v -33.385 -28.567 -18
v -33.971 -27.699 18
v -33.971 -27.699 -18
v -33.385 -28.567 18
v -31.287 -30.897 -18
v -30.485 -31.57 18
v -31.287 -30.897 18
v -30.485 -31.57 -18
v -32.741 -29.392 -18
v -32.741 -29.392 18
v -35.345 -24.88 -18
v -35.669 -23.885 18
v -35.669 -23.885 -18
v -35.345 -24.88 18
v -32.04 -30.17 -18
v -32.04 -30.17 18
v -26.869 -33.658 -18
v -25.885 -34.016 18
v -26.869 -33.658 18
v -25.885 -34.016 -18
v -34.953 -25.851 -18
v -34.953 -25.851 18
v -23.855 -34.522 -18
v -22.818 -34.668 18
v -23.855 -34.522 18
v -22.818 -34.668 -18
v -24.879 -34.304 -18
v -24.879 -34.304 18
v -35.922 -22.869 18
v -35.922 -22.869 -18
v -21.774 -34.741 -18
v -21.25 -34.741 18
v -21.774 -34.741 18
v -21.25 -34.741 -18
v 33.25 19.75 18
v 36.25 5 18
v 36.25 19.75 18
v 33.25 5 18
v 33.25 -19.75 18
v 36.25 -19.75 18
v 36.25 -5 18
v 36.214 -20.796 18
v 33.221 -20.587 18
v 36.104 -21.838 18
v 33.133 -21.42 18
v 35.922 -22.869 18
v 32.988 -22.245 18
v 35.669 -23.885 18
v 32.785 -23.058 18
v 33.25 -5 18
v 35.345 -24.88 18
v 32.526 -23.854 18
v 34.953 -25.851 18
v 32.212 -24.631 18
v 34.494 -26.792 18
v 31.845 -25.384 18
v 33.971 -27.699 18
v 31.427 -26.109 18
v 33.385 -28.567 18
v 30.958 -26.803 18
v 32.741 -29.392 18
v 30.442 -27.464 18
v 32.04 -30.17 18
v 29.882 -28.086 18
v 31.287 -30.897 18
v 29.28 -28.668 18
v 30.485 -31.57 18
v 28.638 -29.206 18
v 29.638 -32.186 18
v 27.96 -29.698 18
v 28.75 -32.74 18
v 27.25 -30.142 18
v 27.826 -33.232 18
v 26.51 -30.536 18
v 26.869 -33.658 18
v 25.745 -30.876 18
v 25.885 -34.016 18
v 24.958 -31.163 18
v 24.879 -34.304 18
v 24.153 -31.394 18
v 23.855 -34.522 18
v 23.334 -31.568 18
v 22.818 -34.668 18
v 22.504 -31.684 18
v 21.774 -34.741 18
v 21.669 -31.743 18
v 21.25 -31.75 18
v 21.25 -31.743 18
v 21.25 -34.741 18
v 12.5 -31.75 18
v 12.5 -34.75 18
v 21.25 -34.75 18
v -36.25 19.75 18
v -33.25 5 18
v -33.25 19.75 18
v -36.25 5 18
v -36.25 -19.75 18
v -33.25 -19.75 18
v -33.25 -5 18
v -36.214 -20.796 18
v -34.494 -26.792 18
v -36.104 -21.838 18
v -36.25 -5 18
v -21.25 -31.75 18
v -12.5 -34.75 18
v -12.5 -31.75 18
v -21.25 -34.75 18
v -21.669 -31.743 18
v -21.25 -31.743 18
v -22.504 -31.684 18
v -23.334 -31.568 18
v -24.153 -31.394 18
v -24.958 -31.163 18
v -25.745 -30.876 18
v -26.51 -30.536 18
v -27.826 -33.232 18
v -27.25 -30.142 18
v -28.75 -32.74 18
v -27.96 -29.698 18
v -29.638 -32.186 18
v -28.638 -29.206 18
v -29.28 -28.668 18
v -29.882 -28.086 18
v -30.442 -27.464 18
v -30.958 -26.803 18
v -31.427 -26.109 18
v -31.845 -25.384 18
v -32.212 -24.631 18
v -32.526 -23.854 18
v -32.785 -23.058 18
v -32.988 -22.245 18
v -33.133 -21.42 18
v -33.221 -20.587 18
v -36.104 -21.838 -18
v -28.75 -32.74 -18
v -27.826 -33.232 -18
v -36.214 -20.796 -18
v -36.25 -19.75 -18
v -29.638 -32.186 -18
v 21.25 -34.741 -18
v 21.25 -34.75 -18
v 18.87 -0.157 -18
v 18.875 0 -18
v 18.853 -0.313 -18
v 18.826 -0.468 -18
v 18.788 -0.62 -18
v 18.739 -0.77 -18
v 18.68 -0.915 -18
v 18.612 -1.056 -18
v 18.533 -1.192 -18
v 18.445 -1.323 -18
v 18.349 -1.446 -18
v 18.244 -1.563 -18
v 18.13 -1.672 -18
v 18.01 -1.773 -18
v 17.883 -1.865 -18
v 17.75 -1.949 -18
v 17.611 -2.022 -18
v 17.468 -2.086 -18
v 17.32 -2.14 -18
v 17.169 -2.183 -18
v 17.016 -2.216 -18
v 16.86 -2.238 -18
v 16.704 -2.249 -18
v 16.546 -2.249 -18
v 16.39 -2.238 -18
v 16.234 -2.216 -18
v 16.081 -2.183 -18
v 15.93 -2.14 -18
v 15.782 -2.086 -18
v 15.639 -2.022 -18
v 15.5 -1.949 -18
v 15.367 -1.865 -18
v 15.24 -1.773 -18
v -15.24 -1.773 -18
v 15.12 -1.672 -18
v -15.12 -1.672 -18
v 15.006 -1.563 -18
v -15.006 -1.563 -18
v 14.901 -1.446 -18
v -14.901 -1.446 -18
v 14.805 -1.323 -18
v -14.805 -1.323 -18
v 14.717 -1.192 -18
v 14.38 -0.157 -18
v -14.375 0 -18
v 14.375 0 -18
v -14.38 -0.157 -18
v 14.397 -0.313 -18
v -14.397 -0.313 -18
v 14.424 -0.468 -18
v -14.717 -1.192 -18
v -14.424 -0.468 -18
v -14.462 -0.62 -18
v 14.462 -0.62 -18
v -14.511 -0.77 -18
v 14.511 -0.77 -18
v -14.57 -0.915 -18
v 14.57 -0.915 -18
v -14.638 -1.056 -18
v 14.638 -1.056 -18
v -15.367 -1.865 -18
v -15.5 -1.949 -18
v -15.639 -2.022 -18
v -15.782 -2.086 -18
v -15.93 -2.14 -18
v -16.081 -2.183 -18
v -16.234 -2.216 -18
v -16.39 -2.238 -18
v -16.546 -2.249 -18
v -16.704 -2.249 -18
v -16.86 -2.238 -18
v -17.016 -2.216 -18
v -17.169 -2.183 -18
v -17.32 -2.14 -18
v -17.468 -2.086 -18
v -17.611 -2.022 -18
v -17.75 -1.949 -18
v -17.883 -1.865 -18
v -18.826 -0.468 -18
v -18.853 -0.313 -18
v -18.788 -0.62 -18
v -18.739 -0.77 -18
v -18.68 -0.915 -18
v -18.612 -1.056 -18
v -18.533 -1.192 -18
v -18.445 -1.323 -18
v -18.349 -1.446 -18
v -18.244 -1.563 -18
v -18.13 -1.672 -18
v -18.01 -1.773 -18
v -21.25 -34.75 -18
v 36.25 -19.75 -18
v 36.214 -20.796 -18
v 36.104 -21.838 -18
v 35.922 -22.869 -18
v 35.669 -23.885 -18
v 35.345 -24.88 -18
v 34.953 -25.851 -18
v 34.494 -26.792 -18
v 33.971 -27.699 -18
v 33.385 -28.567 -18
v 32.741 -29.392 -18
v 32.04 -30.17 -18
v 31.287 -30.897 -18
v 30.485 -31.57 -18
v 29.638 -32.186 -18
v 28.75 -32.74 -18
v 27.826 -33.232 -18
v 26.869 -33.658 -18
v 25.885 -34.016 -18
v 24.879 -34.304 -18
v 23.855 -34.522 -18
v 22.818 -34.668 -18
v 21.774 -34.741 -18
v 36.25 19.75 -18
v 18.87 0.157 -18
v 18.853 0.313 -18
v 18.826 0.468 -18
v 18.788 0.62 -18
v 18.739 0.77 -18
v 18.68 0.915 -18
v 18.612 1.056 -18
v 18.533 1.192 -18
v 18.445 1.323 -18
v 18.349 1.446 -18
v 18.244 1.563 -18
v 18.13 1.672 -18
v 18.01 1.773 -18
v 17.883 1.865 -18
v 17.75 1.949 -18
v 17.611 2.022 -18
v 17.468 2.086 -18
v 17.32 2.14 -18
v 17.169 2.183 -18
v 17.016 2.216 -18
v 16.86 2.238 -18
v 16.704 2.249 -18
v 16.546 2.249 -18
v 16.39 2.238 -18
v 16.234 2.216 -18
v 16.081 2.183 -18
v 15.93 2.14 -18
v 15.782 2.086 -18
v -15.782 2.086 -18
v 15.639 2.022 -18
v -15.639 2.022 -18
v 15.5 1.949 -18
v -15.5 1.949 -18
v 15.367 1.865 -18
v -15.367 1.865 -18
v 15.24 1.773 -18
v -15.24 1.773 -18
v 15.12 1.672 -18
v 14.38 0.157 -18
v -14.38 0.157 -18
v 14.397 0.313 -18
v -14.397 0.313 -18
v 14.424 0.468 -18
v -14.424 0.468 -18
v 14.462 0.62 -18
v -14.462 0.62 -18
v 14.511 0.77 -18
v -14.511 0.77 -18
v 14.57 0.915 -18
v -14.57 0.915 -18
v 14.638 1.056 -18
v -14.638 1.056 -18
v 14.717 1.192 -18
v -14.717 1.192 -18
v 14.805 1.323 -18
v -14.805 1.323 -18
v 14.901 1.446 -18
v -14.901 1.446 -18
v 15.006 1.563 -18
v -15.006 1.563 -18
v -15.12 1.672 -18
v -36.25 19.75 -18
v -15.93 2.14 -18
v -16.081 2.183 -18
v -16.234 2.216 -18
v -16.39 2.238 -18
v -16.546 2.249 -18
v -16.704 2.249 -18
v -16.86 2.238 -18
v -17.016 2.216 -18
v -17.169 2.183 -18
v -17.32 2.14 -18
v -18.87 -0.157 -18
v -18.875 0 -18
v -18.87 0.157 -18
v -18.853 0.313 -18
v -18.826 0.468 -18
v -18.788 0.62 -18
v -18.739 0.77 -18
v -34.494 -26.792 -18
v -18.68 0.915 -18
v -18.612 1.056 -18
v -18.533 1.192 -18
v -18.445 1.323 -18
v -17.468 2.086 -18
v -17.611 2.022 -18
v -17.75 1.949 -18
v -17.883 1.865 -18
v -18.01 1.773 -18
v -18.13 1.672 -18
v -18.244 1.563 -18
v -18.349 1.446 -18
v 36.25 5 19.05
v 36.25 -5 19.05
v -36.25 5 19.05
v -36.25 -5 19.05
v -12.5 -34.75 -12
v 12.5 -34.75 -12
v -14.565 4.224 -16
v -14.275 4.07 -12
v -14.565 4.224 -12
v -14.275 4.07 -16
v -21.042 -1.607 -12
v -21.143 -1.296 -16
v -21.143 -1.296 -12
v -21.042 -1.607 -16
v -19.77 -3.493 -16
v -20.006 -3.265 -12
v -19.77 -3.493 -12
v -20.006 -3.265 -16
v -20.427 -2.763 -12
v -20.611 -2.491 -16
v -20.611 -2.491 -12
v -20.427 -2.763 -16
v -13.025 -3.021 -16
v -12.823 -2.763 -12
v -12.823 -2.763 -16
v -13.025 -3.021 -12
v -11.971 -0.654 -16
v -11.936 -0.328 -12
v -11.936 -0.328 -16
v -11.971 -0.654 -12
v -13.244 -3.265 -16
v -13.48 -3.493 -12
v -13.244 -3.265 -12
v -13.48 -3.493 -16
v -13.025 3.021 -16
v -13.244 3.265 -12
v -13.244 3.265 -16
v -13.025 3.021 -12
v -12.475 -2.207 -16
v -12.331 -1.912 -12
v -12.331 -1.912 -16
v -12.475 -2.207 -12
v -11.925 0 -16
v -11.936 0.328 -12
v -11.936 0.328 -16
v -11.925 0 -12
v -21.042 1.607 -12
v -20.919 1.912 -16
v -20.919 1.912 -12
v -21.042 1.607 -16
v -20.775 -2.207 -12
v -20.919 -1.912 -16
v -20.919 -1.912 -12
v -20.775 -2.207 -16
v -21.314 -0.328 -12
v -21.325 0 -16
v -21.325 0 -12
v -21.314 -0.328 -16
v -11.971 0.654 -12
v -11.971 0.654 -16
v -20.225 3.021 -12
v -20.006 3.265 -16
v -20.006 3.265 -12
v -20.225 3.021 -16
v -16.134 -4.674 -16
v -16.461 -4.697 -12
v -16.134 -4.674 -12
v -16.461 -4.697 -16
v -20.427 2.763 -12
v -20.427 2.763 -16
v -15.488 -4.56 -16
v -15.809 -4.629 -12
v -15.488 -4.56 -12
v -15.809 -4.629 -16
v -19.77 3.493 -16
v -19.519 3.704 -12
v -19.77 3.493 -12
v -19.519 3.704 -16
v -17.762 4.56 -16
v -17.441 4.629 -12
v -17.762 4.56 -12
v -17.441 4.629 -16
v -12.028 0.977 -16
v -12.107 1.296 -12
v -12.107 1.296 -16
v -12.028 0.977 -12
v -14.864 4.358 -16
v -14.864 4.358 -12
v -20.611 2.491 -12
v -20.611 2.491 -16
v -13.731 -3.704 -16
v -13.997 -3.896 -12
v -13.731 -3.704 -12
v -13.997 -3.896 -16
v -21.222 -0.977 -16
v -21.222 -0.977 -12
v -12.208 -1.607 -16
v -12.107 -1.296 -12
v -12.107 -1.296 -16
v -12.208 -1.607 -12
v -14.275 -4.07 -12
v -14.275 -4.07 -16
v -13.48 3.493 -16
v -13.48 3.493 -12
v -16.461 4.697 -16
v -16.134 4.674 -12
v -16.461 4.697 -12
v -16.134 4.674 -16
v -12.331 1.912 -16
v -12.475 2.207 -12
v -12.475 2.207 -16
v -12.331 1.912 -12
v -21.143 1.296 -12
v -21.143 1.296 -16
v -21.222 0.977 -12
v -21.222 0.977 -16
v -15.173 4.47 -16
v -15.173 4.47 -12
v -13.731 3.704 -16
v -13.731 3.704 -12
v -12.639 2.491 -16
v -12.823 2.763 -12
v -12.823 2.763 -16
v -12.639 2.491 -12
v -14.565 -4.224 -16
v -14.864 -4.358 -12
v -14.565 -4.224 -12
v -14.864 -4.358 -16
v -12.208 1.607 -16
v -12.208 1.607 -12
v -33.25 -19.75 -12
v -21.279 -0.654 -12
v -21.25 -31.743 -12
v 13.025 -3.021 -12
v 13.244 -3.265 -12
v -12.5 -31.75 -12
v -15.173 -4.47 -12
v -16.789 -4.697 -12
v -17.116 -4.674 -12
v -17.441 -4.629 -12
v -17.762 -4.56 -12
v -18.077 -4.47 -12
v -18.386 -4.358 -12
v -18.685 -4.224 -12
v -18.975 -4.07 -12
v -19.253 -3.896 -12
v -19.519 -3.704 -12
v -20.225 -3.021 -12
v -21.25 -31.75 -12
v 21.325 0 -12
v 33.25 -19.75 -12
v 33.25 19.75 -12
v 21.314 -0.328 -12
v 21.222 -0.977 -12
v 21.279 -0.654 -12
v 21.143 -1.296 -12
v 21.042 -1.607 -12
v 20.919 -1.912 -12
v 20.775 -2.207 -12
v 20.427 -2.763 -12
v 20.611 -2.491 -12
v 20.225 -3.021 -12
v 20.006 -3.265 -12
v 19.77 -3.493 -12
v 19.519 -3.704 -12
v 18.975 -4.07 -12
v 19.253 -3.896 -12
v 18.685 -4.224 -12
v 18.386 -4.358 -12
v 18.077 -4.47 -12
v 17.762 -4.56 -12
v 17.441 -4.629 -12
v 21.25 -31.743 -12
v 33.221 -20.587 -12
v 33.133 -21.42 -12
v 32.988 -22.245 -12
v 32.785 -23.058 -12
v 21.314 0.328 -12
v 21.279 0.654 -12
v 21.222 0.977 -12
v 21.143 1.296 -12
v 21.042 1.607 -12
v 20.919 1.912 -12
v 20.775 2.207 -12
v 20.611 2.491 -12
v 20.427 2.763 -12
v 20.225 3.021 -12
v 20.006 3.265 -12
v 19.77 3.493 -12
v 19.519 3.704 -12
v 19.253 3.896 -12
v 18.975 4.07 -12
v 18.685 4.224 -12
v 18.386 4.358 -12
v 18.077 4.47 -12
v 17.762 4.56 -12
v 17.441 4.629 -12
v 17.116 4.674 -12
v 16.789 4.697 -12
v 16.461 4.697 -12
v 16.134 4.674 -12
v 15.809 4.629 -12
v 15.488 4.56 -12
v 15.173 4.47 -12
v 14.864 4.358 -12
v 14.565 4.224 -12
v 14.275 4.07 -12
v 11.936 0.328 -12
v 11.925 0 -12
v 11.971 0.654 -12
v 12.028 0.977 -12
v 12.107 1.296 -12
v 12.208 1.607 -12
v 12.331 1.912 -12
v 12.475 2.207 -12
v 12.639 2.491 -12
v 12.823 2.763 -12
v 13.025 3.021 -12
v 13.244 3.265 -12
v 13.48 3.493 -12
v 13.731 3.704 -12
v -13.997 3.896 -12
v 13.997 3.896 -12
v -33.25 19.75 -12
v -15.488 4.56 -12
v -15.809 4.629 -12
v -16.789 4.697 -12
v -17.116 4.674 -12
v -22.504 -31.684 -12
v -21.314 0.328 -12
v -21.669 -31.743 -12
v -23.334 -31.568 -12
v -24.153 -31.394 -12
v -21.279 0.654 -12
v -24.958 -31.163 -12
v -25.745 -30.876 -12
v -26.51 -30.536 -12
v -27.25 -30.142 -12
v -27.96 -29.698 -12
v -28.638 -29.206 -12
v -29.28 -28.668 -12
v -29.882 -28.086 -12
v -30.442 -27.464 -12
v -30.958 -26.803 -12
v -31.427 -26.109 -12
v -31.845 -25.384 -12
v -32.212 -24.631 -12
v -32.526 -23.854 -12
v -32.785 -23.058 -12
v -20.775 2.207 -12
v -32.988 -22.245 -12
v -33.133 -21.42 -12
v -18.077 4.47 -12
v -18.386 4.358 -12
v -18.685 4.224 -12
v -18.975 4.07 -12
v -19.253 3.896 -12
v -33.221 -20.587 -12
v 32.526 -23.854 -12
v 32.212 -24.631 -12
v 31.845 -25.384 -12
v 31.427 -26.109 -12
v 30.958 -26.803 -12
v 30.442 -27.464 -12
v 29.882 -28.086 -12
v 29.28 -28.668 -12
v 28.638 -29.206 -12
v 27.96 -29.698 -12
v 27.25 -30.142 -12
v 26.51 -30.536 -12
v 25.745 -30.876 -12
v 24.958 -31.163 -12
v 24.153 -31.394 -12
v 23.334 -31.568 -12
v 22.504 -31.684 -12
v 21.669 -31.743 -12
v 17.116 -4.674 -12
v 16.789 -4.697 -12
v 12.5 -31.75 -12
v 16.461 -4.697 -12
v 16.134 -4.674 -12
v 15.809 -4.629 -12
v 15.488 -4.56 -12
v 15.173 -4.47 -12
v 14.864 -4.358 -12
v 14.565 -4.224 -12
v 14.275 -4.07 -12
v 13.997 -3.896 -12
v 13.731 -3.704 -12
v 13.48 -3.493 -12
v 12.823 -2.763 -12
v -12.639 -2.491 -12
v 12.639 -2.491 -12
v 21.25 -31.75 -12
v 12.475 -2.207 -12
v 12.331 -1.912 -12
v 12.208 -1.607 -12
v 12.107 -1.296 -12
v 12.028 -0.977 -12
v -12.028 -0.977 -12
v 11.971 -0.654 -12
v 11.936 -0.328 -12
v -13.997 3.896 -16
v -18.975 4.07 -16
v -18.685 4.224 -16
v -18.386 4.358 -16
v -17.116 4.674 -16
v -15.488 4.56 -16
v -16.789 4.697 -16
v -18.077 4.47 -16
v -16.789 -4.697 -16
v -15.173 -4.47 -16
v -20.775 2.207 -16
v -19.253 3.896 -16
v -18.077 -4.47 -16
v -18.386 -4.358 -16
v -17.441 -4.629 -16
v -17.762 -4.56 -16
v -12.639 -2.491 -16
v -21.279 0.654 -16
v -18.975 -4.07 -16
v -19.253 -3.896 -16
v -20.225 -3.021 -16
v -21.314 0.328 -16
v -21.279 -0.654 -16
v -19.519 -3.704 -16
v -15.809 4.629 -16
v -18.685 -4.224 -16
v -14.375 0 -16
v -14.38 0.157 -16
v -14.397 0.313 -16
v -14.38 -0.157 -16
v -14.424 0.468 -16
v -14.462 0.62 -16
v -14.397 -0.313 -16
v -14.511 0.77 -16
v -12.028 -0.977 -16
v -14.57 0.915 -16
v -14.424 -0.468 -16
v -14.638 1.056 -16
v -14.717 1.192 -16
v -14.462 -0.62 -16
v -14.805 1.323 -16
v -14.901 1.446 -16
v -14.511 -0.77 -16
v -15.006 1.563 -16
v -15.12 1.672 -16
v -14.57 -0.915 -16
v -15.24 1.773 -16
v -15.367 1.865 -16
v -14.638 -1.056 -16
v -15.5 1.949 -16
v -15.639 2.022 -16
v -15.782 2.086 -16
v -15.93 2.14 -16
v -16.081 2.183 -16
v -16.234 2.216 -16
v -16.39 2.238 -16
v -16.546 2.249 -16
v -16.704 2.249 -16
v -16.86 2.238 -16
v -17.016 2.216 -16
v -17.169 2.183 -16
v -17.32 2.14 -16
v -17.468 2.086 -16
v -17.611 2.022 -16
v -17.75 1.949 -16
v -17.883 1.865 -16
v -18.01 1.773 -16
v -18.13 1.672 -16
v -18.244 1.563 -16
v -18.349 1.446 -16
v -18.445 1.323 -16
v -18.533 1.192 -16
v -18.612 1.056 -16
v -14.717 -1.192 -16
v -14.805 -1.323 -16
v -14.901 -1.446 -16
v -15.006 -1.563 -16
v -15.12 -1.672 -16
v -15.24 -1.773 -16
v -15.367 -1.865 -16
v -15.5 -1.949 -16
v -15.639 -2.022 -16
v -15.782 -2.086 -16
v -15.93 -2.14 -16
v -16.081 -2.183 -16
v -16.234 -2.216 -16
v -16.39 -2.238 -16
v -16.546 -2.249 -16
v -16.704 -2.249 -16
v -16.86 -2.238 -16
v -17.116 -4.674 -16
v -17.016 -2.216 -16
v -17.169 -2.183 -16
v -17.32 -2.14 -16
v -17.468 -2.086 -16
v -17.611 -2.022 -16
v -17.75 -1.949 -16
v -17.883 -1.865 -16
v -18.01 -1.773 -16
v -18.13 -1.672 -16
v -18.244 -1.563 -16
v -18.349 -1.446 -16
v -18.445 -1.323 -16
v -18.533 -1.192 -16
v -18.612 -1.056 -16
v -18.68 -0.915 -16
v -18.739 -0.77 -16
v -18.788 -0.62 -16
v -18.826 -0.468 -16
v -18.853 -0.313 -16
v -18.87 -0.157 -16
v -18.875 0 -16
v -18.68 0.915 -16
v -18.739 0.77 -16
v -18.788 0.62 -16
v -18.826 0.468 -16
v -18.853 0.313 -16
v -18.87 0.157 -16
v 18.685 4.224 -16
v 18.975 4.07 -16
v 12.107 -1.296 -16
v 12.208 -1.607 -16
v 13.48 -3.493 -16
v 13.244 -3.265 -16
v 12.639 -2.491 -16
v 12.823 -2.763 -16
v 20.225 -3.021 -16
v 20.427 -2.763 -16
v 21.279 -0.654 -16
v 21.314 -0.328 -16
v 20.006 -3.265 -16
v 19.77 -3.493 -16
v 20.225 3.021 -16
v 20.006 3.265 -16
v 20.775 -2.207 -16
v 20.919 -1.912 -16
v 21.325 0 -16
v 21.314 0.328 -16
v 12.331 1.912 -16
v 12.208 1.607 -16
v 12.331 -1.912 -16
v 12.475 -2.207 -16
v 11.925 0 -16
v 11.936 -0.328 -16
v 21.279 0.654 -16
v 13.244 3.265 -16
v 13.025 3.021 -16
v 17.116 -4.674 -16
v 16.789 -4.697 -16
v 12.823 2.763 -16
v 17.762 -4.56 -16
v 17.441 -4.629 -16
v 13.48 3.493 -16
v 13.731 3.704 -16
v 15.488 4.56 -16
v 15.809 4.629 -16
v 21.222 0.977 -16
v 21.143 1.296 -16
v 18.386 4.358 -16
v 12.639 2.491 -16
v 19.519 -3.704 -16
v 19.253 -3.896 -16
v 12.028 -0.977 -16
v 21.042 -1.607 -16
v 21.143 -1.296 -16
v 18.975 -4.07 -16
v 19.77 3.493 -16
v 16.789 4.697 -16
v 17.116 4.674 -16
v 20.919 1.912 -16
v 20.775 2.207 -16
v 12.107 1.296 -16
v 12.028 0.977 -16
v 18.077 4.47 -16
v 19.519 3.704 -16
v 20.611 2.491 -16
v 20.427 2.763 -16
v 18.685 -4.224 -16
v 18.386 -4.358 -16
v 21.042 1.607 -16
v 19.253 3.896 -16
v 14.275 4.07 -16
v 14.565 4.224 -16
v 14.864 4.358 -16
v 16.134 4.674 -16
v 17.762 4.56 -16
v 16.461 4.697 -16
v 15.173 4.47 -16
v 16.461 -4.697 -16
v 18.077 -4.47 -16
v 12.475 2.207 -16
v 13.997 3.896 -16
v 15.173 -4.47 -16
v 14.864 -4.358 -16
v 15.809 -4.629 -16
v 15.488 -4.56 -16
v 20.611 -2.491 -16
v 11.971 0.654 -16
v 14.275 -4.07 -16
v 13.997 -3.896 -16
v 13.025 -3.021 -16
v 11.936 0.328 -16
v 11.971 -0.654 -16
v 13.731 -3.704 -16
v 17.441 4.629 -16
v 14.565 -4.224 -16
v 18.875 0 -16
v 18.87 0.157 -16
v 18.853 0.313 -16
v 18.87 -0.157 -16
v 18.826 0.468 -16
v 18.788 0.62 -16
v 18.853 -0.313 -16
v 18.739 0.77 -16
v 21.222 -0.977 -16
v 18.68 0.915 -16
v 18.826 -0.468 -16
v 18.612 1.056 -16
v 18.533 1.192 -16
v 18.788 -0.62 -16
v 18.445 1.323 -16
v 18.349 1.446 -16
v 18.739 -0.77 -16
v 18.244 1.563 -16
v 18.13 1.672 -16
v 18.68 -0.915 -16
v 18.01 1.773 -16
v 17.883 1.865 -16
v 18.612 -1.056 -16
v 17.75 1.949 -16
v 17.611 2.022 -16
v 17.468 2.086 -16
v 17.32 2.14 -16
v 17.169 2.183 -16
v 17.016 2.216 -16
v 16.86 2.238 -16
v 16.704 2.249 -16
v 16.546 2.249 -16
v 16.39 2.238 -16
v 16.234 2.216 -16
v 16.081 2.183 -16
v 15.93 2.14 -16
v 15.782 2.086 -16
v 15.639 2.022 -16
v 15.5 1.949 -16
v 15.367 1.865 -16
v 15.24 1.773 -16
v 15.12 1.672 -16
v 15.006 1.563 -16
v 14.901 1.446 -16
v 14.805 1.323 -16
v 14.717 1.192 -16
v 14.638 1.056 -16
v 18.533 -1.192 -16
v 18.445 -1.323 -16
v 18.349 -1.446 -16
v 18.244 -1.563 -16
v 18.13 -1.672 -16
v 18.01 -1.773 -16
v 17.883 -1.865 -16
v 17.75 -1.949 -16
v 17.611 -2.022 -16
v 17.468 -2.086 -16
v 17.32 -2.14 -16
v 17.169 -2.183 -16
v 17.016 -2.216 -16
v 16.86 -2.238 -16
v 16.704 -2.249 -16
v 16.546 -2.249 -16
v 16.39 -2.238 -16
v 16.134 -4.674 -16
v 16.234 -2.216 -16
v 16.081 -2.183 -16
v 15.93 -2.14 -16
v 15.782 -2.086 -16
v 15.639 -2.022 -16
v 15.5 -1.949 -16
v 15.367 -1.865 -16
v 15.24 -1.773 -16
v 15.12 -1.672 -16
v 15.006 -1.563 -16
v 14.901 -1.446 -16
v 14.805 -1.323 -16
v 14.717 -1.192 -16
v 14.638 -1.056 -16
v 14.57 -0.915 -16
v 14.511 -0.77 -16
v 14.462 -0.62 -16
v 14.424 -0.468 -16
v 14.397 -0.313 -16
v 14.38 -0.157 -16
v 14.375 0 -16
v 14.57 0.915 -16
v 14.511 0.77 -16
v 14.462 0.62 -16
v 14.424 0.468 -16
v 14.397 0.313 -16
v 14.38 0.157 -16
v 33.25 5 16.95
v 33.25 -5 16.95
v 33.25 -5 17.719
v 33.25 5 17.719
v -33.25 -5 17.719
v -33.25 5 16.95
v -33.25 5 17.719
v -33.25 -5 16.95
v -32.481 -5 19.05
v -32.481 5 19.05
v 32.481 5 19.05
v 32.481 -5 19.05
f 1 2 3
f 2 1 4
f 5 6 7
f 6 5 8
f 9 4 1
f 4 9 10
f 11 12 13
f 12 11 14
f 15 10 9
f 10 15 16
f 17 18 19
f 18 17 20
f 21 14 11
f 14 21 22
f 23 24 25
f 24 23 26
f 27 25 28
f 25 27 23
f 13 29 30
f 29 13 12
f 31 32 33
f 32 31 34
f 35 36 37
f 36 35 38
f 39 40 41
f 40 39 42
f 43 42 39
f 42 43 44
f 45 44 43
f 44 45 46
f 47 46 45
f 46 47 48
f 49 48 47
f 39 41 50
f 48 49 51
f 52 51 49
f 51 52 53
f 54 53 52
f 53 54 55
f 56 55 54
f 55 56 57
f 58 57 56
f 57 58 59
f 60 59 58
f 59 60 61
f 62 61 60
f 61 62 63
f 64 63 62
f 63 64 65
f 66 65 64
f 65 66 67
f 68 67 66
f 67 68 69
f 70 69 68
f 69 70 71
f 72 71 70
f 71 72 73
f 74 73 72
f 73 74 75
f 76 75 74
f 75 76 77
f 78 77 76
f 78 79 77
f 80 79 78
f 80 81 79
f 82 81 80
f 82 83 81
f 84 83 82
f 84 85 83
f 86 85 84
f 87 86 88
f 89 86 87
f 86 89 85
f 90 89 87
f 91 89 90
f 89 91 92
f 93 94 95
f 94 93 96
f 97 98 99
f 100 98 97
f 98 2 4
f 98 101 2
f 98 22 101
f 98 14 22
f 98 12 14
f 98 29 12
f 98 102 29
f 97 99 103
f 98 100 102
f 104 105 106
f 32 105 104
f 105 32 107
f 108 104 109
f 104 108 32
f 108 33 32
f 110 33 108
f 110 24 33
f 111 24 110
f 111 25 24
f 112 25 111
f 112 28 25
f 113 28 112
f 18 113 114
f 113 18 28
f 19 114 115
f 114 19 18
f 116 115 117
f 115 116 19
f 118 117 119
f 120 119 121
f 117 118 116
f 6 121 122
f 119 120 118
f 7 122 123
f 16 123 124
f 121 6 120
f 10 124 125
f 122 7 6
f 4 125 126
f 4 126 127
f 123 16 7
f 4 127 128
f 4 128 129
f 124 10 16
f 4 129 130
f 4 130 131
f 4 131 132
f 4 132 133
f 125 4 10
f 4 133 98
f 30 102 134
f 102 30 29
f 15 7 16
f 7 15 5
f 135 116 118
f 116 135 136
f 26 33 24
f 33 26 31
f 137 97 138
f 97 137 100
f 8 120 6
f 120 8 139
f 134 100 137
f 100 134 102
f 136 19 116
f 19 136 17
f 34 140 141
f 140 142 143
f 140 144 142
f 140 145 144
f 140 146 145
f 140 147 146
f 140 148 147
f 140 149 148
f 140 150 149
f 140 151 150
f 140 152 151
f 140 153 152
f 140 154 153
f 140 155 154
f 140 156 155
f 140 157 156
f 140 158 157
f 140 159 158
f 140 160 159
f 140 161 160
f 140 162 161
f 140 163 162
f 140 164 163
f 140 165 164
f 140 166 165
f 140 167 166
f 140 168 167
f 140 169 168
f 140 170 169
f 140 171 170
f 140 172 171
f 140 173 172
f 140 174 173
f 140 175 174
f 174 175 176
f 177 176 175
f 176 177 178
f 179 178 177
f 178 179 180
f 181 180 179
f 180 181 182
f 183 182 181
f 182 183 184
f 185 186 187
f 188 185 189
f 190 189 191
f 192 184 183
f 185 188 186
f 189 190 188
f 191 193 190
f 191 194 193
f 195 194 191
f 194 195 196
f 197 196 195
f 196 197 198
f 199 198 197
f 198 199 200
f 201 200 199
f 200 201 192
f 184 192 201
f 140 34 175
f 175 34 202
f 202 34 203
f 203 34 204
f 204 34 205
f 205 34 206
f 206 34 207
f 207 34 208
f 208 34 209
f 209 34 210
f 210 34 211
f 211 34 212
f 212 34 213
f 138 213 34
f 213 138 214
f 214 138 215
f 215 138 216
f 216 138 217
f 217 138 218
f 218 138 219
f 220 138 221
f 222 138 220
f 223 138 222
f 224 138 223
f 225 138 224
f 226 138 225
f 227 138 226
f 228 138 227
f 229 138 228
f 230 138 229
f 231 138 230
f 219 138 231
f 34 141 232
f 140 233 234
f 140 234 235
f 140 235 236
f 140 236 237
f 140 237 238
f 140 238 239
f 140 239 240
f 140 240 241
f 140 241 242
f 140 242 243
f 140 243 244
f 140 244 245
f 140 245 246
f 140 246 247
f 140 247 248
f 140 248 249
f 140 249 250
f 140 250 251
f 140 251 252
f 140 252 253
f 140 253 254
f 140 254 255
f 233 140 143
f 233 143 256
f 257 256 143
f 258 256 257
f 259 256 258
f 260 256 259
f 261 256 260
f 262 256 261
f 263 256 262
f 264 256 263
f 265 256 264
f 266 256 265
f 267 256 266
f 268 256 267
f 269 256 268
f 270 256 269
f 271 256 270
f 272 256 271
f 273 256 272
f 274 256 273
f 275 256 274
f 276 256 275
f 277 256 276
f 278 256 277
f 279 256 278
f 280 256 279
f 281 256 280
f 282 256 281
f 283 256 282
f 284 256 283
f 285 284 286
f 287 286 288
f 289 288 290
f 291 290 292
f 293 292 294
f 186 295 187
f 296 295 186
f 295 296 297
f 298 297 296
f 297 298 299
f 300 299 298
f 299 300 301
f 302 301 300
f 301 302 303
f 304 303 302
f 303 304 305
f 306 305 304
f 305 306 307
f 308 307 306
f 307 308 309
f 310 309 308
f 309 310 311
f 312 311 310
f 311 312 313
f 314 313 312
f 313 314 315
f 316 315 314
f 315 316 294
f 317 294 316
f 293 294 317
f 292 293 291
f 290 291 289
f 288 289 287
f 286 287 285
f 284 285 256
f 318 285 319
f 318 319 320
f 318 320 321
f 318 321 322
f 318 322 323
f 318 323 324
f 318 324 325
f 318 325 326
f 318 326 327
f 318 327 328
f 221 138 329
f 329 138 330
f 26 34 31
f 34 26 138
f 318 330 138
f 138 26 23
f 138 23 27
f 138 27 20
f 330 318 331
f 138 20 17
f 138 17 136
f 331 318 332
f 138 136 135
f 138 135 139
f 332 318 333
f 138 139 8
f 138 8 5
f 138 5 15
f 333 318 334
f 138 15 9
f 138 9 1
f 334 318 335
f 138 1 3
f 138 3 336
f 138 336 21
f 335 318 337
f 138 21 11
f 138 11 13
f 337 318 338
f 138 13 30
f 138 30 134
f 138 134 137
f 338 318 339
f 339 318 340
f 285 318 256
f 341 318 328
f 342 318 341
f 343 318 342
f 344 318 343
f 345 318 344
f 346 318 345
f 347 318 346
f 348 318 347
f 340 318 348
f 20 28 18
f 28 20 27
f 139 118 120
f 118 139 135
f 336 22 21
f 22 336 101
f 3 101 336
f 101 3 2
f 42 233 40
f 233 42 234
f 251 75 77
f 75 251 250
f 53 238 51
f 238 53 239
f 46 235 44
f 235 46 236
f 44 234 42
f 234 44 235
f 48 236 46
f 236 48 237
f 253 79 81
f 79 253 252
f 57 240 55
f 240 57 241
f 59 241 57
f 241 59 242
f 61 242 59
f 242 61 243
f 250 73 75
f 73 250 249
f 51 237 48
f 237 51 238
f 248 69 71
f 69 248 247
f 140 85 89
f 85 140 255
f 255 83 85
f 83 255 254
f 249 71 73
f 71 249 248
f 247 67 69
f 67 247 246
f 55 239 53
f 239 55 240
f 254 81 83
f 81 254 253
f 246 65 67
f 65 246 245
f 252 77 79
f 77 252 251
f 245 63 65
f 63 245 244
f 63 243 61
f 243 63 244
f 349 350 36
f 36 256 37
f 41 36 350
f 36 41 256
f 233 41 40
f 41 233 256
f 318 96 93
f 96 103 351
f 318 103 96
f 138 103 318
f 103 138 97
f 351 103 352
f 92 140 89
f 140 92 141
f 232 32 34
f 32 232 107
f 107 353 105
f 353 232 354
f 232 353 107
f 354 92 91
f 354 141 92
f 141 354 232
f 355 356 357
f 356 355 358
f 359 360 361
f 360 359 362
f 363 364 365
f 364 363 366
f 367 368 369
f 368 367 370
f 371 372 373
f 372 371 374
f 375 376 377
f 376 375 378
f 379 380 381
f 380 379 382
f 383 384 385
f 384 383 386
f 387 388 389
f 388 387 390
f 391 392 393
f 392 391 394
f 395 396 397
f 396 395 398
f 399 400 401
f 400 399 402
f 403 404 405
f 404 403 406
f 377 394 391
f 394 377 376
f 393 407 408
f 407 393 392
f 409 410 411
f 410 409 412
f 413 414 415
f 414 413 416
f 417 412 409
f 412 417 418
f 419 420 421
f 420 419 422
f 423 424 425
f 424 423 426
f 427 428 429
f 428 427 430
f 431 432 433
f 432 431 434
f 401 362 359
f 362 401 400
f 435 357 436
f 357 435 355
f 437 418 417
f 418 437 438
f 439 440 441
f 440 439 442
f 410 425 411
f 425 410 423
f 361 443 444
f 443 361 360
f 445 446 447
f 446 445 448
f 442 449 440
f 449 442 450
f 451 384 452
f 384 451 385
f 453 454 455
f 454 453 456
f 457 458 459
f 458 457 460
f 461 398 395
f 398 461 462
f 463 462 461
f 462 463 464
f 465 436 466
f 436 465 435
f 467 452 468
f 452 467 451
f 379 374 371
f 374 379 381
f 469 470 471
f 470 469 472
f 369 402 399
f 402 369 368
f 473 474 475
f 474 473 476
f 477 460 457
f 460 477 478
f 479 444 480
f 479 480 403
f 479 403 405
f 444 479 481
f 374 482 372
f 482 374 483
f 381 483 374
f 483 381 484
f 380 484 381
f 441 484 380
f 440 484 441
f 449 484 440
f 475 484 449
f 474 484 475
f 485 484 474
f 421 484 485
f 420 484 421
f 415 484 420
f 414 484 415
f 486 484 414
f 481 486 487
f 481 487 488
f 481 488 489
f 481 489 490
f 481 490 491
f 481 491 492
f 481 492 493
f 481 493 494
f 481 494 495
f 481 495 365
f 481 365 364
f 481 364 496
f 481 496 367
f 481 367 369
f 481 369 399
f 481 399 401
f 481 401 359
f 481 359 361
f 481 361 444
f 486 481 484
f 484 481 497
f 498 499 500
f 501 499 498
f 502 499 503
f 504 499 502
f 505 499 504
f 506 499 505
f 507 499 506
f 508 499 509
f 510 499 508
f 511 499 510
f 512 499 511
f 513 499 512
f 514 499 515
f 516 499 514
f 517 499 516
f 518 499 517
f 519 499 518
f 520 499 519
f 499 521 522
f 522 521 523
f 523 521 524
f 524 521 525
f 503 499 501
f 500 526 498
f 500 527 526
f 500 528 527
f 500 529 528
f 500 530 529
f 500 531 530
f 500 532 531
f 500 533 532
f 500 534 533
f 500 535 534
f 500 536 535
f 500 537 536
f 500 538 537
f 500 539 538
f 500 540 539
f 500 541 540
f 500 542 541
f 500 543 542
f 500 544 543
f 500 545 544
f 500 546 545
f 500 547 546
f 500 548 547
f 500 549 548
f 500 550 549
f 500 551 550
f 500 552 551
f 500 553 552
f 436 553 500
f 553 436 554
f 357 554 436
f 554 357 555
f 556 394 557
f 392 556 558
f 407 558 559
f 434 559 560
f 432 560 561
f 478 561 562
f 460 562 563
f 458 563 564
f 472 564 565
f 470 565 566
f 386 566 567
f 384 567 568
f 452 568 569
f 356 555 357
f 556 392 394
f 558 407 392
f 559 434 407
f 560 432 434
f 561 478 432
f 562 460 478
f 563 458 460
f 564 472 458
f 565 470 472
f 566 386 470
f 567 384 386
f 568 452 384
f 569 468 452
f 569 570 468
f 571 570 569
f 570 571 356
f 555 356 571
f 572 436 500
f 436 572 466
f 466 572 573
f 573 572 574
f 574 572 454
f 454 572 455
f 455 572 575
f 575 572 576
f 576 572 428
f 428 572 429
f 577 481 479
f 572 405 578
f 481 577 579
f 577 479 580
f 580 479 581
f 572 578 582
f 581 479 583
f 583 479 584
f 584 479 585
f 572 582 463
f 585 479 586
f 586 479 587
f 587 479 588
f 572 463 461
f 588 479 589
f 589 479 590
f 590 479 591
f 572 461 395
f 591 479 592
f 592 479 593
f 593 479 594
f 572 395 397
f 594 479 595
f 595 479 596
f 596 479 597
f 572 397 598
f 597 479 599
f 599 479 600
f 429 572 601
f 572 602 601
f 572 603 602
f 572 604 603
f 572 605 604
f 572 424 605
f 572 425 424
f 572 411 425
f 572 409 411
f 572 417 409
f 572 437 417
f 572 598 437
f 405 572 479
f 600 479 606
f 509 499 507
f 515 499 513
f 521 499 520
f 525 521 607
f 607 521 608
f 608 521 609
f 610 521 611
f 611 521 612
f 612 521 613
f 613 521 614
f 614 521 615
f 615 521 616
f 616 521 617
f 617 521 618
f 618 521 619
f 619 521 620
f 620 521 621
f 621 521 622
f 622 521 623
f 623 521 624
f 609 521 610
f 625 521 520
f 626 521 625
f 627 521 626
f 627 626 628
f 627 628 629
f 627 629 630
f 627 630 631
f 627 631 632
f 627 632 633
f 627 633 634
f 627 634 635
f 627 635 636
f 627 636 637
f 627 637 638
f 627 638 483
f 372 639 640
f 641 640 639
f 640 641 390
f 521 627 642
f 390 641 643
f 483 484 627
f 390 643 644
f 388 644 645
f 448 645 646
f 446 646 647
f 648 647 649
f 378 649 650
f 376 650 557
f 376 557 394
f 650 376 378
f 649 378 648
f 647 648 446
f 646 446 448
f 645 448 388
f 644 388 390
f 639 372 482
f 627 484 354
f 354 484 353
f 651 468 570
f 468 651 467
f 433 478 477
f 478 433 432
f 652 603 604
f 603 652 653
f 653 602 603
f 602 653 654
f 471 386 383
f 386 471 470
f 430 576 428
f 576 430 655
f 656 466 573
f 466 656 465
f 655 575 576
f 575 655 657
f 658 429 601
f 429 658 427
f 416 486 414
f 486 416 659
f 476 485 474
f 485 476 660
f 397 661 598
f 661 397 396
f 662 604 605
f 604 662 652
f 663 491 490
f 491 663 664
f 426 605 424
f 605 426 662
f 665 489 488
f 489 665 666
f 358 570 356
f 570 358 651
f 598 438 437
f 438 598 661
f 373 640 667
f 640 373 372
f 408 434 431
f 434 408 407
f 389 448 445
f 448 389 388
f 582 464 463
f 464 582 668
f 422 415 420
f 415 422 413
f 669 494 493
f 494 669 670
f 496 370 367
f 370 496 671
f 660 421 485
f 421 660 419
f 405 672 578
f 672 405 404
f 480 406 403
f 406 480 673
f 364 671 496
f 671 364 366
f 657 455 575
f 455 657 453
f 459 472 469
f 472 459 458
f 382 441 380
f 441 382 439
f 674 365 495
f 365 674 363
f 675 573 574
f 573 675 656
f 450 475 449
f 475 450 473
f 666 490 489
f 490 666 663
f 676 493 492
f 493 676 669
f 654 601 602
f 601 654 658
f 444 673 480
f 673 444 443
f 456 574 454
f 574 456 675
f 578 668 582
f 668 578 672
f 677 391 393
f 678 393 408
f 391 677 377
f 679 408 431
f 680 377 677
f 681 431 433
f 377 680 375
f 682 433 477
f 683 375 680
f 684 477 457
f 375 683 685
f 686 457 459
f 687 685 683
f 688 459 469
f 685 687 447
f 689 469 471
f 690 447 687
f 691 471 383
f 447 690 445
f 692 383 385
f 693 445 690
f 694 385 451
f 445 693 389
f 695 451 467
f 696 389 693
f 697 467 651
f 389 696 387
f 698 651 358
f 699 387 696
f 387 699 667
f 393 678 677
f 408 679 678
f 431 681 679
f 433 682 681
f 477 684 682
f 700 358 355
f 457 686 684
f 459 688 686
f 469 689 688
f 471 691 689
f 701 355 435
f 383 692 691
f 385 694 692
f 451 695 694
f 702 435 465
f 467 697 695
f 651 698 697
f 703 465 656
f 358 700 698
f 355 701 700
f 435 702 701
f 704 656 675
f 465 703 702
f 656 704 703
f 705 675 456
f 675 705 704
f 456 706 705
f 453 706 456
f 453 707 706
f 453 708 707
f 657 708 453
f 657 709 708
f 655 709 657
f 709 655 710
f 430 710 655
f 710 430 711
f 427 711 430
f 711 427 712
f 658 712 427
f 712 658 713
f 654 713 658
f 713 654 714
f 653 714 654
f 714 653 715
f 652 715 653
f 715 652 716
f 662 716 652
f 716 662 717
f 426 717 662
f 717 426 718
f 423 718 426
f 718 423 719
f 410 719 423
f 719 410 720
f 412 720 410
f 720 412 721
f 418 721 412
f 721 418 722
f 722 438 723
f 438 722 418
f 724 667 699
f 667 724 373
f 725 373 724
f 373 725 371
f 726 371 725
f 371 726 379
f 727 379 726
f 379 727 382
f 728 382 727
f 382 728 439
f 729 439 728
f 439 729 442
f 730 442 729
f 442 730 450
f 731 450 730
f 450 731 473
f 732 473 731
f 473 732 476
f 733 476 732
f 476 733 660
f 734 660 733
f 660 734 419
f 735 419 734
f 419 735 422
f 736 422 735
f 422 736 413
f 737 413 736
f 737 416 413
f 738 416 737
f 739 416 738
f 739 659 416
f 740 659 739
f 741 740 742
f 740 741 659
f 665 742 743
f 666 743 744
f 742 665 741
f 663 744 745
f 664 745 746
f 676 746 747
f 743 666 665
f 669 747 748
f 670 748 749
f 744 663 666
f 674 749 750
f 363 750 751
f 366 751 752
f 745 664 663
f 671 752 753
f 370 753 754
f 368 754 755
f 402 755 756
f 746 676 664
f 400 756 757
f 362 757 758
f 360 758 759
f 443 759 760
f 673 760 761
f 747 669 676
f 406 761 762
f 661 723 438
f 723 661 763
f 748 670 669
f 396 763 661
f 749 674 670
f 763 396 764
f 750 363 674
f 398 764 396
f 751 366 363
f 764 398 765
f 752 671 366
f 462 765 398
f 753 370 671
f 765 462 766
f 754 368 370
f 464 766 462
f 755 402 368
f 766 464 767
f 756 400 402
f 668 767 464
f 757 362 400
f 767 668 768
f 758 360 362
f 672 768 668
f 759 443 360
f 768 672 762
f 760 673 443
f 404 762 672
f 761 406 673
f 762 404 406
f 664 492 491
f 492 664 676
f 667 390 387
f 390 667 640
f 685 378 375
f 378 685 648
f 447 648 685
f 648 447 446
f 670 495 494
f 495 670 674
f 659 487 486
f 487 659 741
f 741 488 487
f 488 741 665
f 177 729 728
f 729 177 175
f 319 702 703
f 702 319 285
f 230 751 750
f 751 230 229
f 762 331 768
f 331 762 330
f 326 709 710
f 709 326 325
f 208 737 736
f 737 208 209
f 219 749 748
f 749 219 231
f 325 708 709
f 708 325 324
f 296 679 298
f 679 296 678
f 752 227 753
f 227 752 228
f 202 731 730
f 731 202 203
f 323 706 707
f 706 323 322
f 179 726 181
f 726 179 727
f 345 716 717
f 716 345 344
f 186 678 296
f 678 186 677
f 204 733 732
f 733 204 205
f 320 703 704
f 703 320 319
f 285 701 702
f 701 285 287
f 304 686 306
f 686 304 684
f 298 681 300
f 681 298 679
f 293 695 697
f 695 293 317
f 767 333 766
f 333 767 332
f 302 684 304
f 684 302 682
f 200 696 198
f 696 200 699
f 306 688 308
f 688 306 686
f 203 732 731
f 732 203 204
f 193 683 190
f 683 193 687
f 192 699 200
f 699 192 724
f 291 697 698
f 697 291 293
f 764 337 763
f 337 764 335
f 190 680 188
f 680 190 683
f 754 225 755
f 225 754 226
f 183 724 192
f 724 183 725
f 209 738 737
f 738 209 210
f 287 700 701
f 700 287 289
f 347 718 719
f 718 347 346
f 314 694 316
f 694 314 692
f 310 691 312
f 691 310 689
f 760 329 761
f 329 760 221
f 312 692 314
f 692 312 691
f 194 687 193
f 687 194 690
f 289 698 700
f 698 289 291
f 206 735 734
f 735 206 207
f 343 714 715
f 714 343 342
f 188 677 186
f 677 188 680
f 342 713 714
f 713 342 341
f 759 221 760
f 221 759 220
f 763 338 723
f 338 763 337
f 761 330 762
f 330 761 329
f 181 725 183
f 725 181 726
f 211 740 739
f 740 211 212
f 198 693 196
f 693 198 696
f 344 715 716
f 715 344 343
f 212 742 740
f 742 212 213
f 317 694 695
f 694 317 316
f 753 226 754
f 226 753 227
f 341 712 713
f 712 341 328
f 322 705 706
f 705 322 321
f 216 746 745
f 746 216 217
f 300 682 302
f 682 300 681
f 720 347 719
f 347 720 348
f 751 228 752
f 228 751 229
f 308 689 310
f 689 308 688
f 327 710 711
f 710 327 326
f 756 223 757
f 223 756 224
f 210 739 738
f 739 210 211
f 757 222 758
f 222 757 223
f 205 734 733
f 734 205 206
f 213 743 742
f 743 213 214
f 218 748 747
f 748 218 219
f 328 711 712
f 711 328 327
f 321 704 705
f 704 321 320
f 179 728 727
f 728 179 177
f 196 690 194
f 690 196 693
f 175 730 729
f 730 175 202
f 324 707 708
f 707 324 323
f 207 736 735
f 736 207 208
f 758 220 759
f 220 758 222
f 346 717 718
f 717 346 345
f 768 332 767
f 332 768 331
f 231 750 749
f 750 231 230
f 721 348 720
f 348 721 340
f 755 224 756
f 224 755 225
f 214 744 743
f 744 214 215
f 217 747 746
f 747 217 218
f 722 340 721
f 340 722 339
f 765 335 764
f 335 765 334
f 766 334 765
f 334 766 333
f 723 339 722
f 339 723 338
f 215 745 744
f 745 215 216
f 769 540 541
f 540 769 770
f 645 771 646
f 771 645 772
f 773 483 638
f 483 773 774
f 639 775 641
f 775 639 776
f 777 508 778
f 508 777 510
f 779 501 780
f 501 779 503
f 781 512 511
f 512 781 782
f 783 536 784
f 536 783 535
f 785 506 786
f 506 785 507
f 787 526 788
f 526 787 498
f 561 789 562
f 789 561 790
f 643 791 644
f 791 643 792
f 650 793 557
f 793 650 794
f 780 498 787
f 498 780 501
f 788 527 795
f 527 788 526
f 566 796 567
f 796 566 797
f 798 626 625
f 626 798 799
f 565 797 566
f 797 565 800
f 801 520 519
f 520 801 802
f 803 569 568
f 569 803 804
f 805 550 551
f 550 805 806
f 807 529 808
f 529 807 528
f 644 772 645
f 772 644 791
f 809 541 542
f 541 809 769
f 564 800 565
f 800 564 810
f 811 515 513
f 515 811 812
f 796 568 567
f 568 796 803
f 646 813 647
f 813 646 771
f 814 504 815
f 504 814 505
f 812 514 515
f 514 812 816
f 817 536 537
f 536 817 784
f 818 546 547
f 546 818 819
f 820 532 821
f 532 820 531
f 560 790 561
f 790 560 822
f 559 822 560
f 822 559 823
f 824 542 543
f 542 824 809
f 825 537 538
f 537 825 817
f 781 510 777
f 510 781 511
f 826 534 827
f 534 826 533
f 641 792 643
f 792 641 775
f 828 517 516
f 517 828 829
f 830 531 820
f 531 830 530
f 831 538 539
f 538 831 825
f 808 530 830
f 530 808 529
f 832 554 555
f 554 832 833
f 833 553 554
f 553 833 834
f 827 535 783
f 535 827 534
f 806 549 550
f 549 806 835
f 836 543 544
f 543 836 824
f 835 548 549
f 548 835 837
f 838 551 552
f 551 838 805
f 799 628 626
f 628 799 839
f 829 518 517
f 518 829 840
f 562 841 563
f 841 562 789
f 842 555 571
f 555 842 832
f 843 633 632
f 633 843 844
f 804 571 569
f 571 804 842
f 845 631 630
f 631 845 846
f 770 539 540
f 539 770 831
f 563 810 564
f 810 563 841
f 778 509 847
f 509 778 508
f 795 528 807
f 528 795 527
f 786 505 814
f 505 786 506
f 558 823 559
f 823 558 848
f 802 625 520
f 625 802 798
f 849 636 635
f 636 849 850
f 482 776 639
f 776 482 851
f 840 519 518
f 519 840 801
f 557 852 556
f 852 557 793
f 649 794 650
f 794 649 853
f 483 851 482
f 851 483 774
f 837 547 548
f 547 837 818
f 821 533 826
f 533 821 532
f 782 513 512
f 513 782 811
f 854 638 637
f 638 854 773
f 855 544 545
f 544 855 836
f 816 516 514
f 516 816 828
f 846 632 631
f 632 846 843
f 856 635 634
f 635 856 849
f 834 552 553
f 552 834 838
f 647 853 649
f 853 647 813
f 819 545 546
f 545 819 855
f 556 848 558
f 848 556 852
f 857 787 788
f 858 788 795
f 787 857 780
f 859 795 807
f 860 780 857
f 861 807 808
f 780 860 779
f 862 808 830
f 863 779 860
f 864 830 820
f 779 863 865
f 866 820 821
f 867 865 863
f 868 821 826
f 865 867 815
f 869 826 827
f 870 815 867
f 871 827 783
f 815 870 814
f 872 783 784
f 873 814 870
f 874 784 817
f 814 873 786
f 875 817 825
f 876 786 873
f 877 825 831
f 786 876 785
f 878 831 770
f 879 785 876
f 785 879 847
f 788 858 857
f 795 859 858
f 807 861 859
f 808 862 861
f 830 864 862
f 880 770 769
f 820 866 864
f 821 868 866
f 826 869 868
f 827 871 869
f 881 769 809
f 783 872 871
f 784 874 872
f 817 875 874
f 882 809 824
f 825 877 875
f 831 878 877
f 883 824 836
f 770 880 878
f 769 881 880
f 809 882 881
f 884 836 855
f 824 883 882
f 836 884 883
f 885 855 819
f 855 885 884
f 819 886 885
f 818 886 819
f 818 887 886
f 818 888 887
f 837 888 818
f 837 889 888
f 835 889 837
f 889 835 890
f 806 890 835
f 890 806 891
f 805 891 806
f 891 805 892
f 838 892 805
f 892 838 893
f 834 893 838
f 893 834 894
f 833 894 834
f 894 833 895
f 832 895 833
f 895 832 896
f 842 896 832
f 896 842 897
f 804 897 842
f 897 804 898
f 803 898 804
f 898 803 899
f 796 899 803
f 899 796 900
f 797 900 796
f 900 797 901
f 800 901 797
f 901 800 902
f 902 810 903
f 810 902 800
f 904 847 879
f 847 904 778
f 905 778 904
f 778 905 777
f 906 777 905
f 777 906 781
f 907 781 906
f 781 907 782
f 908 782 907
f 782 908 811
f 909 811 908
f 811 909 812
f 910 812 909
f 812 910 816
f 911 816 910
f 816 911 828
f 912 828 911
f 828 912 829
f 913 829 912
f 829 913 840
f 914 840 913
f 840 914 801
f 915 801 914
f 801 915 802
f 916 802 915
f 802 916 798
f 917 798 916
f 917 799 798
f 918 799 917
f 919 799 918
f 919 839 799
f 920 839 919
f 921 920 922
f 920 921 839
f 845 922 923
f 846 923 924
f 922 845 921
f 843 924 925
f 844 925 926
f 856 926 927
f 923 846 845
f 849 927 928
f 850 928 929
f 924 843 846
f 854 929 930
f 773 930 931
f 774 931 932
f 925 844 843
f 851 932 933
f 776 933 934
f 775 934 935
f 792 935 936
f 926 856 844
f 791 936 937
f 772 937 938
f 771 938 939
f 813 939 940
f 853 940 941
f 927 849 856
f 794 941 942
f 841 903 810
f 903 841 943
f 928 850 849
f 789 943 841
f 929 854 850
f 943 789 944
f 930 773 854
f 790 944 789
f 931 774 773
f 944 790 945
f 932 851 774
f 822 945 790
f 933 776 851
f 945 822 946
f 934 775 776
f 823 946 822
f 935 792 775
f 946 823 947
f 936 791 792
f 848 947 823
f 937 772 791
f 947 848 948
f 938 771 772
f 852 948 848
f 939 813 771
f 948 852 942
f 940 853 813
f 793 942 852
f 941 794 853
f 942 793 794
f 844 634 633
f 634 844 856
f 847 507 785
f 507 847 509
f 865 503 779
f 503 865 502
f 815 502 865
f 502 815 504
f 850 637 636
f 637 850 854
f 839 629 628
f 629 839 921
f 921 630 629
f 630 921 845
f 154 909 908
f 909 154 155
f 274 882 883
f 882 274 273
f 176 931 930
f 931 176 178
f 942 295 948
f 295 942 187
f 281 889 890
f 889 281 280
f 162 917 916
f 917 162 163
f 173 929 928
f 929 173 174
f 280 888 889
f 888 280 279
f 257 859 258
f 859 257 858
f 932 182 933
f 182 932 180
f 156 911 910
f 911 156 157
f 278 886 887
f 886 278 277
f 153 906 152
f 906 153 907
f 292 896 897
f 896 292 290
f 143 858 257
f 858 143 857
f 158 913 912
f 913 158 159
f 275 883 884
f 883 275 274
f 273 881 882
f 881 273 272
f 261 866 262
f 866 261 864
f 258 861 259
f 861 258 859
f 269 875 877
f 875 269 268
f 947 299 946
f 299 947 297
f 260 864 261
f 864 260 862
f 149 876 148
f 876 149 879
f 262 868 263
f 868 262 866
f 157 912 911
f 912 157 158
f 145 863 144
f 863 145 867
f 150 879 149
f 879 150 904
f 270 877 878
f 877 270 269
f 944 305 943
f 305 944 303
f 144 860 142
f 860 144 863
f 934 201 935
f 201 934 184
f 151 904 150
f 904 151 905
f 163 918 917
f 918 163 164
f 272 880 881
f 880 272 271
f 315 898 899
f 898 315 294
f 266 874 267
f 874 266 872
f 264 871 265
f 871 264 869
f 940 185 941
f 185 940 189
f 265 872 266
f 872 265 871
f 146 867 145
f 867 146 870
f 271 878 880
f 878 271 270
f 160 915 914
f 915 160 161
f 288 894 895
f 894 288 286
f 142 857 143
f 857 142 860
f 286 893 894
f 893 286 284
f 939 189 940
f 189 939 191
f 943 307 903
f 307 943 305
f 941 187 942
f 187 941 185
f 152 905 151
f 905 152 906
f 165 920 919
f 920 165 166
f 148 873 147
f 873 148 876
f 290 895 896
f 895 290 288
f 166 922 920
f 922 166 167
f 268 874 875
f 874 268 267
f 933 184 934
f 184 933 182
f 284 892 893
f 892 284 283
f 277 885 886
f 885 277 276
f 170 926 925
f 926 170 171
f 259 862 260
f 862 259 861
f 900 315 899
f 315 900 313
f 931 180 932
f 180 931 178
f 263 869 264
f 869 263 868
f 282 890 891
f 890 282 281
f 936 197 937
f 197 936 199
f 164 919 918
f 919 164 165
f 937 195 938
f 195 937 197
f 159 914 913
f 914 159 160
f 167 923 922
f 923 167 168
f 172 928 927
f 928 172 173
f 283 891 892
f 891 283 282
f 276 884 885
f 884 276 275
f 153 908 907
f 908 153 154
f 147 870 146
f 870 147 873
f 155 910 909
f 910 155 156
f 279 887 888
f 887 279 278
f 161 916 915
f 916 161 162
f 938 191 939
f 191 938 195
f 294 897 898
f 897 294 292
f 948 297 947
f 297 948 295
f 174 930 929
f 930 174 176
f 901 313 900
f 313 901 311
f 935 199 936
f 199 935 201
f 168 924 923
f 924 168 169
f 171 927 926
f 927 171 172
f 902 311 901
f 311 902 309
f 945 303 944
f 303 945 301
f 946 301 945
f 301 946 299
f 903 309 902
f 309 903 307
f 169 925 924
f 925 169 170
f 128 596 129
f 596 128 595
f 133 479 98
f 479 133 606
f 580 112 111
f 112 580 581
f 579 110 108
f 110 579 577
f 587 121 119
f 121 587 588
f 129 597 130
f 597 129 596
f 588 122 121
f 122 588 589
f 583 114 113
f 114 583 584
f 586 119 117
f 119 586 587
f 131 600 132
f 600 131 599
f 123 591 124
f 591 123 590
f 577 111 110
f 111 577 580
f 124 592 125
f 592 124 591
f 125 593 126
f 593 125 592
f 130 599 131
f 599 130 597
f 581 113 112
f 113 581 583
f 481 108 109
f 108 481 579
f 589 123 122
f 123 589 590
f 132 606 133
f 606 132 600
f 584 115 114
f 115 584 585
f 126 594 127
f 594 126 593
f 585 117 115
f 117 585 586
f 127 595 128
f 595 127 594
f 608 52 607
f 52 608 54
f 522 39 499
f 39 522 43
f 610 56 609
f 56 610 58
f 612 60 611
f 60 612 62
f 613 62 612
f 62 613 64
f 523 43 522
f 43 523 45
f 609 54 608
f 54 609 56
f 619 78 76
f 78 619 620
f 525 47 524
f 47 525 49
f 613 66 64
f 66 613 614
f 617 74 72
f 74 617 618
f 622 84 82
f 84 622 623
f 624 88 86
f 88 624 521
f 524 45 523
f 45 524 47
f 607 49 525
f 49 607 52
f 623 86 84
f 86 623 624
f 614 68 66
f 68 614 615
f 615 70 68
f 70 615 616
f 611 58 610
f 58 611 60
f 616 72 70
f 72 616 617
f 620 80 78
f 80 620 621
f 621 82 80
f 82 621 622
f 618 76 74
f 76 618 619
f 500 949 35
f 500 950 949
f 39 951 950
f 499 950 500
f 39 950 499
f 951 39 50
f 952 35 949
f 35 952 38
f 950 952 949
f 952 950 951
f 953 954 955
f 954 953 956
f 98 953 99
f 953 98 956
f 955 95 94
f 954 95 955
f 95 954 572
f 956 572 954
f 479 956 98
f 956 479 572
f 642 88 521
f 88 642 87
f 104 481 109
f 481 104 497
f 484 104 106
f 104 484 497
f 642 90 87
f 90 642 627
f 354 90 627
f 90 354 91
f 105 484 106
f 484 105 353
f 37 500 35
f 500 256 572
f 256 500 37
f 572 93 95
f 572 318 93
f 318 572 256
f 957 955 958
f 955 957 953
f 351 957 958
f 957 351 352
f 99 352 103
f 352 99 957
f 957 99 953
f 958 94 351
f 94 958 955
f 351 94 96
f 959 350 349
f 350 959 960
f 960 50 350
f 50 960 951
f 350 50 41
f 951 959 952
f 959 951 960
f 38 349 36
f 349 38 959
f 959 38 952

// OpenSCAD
$fn=90;


module roundedRectangle(length, width, height, cornerRadius=0) {
    if (cornerRadius > 0) {
        cube([length, width - (cornerRadius * 2), height], center=true);
        cube([length - (cornerRadius * 2), width, height], center=true);
        for (xCorner = [-((length / 2) - cornerRadius), (length / 2) - cornerRadius])
            for (yCorner = [-((width / 2) - cornerRadius), (width / 2) - cornerRadius])
        translate([xCorner, yCorner, 0]) cylinder(r=cornerRadius, h=height, center=true);
            
    }
}

module screwHeadRecess(headDiameter, headHeight, shaftDiameter, shaftHeight) {
    headX = shaftHeight / 2;
    shaftX = headHeight / 2;
    translate([0, 0, headX]) cylinder(d=headDiameter, h=headHeight, center = true);
        translate([0, 0, -shaftX]) cylinder(d=shaftDiameter, h=shaftHeight, center = true);
}

length=66.5;
width=66.5;
height=30;
radius=12;
wallThickness = 3;
screwHeadDiameter = 9.4;
screwHeadHeight = 4;
screwShaftDiameter = 4.5;
screwShaftHeight = 2;
powerCableWidth = 25;
mountThickness = screwHeadHeight + screwShaftHeight;
overallLength = length + (wallThickness * 2);
overallWidth = width + wallThickness;
overallHeight = height + mountThickness;
overallRadius = radius + wallThickness;
retainerWidth = wallThickness * 0.7;
retainerLength = 10;

difference() {
    roundedRectangle(overallLength, overallWidth, overallHeight, overallRadius);
    for (xScrew = [-width * 0.25, width * 0.25])
        translate([xScrew, 0, -height / 2]) 
          screwHeadRecess(screwHeadDiameter, screwHeadHeight, screwShaftDiameter, screwShaftHeight);
    translate([0, wallThickness / 2, mountThickness/ 2]) 
        roundedRectangle(length, width, height, radius);
    translate([0, -((overallWidth - wallThickness) / 2), mountThickness/ 2])
        cube([powerCableWidth, wallThickness, height], center=true);
    translate([0, (overallWidth - radius - wallThickness) / 2, 0])    
        cube([overallLength, radius + wallThickness, overallHeight], center = true);
}


translate([-(width + retainerWidth) / 2, 0, overallHeight / 2]) rotate([90, -30, 0]) cylinder(r=retainerWidth, h=retainerLength, $fn=3, center=true); 
translate([-(length + wallThickness) / 2, 0, overallHeight / 2]) cube([wallThickness, retainerLength, retainerWidth], center=true);


translate([(width + retainerWidth) / 2, 0, overallHeight / 2]) rotate([90, -30, 0]) cylinder(r=retainerWidth, h=retainerLength, $fn=3, center=true); 
translate([(length + wallThickness) / 2, 0, overallHeight / 2]) cube([wallThickness, retainerLength, retainerWidth], center=true);
